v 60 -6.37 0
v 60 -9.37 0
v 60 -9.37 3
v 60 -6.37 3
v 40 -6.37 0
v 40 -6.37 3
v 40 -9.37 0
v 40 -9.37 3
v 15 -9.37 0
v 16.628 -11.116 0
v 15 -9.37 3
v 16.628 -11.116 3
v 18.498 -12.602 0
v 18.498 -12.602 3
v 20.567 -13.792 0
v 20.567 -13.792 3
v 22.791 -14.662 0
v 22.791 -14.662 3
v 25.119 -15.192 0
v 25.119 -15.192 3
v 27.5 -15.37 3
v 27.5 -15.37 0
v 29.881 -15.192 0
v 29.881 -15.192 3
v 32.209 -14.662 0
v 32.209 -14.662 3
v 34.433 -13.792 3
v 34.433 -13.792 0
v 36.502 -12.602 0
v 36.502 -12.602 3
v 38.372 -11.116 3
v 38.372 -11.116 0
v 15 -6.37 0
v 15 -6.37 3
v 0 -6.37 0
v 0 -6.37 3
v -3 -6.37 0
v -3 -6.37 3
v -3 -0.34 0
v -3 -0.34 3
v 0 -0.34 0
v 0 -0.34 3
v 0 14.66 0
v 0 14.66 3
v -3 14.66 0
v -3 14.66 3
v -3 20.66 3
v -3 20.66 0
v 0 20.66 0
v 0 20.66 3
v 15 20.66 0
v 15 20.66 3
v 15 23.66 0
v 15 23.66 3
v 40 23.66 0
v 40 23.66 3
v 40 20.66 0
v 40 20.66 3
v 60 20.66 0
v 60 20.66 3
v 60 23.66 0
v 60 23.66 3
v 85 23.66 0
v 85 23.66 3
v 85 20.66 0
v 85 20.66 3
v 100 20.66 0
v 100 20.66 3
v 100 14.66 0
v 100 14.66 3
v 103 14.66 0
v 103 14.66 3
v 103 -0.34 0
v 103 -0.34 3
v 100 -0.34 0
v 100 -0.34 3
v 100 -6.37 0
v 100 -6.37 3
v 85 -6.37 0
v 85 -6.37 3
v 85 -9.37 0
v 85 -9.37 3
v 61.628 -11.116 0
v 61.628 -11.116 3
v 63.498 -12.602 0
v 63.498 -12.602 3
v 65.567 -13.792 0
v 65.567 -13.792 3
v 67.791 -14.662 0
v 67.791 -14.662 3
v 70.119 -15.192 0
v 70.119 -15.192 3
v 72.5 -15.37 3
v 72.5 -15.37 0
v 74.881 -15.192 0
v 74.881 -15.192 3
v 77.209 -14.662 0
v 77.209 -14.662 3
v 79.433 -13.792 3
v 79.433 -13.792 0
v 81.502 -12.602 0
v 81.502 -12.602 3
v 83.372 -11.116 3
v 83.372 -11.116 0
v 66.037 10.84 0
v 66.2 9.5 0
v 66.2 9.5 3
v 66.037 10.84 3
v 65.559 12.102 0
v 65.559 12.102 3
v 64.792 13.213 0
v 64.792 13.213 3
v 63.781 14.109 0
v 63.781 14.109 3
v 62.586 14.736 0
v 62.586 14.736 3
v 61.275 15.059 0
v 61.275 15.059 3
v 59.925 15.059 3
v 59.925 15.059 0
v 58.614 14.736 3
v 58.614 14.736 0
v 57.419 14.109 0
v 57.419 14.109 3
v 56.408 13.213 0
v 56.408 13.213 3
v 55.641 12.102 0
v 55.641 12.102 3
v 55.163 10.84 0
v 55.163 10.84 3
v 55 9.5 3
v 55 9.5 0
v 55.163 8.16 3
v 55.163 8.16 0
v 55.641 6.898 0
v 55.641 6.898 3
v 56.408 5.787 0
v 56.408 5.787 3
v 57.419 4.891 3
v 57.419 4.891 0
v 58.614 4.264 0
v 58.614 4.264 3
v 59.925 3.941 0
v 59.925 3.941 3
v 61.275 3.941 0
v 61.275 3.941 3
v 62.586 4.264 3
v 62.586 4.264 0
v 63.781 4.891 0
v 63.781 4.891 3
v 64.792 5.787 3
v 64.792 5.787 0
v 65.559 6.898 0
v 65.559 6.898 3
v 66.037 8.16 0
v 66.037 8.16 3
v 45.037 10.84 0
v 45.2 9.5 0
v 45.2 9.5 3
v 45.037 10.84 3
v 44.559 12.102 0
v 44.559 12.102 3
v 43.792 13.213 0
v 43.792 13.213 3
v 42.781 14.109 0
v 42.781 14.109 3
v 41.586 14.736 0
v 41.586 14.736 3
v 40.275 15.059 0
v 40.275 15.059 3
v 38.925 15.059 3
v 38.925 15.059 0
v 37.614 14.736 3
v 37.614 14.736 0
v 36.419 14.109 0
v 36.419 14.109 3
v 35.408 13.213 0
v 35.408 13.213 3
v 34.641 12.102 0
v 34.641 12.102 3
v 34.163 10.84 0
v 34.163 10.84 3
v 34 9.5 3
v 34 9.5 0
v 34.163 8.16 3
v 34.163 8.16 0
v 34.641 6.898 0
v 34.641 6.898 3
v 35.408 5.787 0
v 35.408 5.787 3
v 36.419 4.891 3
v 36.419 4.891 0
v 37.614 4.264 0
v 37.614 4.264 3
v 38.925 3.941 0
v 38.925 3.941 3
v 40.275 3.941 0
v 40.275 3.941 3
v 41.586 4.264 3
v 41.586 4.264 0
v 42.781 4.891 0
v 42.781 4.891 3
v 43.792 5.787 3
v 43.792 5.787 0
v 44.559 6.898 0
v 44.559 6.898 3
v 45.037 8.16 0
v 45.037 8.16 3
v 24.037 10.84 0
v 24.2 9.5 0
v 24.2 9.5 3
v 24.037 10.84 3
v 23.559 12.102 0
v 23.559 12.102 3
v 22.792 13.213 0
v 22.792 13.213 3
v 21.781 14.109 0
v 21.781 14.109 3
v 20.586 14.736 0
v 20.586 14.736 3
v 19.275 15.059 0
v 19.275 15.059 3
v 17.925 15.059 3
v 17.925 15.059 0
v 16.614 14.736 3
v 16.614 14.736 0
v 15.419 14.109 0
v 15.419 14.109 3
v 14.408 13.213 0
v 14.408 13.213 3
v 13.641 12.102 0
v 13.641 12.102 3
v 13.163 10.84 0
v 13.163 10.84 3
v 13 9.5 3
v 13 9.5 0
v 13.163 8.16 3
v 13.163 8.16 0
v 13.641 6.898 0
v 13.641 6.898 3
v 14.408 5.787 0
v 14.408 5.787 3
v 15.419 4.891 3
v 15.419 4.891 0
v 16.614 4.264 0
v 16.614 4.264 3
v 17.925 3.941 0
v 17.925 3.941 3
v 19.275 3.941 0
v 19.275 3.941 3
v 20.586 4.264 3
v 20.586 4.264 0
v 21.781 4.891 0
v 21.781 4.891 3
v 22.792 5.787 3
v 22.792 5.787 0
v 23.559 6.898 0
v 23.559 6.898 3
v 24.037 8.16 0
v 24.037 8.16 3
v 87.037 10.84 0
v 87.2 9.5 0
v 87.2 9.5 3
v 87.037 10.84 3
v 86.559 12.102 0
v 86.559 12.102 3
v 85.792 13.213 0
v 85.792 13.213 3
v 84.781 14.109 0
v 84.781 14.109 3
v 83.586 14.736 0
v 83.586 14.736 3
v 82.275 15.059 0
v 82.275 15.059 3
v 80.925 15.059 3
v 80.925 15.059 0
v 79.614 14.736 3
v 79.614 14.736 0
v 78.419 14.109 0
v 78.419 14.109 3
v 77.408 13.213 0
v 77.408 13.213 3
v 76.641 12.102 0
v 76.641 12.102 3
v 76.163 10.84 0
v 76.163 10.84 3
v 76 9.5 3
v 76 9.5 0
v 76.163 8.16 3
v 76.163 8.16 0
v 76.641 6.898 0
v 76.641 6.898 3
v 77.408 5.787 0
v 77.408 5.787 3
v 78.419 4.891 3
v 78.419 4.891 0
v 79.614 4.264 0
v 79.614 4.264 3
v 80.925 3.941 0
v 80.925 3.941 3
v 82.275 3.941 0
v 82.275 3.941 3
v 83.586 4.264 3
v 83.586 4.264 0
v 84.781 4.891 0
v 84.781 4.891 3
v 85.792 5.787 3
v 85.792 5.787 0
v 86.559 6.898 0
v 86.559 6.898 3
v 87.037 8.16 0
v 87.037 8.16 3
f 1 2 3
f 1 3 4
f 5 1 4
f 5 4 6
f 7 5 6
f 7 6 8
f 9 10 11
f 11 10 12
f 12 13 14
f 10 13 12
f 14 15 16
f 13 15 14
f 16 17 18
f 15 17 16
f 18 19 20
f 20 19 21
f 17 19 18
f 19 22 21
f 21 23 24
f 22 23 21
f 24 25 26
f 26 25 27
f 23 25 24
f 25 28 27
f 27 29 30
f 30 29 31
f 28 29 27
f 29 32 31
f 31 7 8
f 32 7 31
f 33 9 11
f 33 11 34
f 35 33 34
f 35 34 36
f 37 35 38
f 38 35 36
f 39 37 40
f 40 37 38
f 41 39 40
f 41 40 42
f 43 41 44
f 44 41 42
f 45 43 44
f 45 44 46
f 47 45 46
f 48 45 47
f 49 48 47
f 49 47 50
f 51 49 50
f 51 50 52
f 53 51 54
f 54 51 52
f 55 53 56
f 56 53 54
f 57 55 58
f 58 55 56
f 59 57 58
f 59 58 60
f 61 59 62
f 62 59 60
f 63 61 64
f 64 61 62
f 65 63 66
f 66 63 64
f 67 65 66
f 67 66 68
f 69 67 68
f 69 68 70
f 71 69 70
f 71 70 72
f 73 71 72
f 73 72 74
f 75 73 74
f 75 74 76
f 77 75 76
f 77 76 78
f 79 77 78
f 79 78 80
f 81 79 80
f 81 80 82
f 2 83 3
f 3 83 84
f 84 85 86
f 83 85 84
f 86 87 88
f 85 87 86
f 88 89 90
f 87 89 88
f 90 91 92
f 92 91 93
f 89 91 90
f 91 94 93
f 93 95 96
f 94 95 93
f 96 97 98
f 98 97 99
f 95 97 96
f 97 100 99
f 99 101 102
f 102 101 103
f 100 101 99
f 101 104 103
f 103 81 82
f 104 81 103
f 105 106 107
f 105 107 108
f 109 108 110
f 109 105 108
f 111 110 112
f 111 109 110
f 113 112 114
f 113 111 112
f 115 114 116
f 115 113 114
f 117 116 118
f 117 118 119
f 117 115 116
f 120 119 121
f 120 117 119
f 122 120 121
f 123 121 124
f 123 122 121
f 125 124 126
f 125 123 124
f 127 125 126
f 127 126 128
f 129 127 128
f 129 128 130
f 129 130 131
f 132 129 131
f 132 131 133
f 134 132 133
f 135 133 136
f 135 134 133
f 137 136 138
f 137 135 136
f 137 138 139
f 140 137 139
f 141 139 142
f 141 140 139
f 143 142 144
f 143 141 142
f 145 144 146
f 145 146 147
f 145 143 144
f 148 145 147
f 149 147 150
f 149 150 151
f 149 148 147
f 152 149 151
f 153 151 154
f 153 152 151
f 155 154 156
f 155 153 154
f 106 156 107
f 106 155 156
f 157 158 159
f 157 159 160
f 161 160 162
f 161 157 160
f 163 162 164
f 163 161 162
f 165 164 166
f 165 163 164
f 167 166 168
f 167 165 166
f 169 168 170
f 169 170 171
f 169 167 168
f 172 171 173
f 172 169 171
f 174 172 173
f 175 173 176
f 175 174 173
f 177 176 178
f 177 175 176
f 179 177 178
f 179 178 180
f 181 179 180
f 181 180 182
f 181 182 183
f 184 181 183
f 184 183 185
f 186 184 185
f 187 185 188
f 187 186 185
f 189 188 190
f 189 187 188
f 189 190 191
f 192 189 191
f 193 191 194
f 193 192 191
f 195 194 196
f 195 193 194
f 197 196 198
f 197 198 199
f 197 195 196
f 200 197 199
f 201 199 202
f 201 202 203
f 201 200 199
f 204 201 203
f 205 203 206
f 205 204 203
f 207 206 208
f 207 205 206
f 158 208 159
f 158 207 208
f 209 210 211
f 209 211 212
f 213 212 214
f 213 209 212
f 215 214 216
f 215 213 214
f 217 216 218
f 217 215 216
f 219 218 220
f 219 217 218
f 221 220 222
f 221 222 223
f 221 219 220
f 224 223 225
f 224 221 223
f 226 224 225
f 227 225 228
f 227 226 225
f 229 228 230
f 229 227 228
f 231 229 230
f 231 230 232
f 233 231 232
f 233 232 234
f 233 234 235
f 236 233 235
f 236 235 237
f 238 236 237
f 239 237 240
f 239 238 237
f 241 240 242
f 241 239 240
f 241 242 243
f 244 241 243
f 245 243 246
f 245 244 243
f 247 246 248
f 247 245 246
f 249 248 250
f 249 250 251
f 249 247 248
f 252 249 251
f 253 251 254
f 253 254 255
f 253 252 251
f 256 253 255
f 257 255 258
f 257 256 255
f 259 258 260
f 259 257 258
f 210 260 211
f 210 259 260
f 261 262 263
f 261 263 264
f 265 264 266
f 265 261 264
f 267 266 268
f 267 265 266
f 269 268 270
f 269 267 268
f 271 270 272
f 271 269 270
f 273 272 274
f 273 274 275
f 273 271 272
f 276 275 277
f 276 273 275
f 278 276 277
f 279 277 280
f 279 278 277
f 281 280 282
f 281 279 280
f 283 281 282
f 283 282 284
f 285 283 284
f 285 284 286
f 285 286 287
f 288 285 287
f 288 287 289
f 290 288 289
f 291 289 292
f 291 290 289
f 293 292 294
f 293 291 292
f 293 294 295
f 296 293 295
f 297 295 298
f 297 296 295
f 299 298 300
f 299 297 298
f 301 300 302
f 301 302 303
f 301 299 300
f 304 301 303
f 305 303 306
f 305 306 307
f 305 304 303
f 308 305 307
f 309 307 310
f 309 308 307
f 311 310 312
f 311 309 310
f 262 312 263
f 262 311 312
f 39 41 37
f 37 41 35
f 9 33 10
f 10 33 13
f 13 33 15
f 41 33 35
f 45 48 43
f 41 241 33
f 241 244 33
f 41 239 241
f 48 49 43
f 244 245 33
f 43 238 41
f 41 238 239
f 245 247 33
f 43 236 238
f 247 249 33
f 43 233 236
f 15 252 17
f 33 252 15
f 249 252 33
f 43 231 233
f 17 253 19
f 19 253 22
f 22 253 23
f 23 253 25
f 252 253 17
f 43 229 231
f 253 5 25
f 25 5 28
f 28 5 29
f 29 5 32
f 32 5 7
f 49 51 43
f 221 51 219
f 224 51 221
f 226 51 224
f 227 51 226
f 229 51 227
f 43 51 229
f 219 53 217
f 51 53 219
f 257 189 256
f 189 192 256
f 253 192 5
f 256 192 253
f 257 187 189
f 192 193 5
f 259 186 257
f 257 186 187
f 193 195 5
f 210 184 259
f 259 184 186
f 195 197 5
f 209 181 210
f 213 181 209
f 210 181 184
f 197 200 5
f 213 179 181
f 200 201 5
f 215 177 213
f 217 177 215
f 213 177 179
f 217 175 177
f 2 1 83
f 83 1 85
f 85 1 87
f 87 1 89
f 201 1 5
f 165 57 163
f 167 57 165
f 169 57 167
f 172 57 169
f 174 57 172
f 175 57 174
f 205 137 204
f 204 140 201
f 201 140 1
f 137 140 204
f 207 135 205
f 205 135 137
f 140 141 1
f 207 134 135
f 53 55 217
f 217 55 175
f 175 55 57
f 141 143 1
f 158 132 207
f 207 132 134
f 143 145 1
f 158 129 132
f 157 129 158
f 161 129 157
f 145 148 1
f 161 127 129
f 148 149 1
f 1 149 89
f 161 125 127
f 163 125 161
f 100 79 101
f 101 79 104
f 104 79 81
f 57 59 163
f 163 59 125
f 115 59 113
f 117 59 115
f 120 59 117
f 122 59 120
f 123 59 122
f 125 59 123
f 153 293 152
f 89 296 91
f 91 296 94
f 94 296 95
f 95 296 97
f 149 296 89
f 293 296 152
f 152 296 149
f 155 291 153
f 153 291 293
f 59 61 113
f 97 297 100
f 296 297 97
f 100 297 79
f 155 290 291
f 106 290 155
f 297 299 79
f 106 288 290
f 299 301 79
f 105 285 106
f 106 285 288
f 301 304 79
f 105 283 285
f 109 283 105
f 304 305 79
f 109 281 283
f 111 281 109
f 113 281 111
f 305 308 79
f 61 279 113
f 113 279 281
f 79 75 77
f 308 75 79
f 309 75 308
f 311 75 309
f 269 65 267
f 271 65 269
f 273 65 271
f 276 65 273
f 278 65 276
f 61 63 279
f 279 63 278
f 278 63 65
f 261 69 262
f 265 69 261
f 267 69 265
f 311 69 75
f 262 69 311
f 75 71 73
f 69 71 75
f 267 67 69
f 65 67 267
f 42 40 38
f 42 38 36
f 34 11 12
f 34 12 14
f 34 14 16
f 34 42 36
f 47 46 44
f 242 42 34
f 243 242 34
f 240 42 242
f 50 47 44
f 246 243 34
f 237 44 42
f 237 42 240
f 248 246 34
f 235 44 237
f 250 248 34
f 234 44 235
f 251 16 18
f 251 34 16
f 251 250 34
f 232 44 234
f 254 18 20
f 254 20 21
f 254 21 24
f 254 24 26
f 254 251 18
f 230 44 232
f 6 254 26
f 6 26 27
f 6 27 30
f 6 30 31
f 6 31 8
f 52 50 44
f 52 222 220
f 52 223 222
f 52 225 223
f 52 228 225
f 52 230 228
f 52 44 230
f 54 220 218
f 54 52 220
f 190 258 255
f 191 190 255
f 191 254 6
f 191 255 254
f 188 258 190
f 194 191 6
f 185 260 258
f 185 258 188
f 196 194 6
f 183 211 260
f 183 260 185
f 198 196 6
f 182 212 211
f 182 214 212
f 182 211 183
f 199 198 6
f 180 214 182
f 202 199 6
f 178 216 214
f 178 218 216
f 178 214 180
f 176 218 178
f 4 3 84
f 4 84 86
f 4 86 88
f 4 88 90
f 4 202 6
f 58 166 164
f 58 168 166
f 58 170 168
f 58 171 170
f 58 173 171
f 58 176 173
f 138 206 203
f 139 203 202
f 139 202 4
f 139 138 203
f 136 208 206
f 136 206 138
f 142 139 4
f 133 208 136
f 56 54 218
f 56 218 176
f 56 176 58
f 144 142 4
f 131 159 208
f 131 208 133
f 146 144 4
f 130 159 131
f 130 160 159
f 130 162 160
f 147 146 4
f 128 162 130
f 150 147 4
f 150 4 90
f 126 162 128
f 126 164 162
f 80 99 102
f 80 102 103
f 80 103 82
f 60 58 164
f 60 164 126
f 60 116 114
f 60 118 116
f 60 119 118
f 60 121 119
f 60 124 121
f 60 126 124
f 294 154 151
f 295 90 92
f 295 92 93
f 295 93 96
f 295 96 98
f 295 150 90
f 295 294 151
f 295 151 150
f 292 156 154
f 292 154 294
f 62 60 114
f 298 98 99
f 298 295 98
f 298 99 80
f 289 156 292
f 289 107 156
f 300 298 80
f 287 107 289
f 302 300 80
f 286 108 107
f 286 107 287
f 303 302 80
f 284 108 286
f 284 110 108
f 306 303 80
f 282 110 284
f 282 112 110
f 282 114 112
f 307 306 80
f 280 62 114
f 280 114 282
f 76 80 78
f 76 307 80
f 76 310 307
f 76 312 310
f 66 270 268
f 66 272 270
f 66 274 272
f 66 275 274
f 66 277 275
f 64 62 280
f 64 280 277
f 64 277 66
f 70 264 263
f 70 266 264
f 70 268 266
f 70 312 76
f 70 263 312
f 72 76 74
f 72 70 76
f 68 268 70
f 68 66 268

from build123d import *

# Parameters (mm, degrees)
SKETCH_R      = 5.6
EXTRUDE_DEPTH = 3


with BuildPart() as part:
    # Sketch → Extrude (new body)
    with BuildSketch(Plane.XY):
        with BuildLine():
            Line((40, -6.37), (40, -9.37))
            ThreePointArc((15, -9.37), (27.5, -15.37), (40, -9.37))
            Line((15, -9.37), (15, -6.37))
            Line((15, -6.37), (0, -6.37))
            Line((-3, -6.37), (0, -6.37))
            Line((-3, -0.34), (-3, -6.37))
            Line((-3, -0.34), (0, -0.34))
            Line((0, 14.66), (0, -0.34))
            Line((0, 14.66), (-3, 14.66))
            Line((-3, 14.66), (-3, 20.66))
            Line((-3, 20.66), (0, 20.66))
            Line((0, 20.66), (15, 20.66))
            Line((15, 23.66), (15, 20.66))
            Line((40, 23.66), (15, 23.66))
            Line((40, 20.66), (40, 23.66))
            Line((40, 20.66), (60, 20.66))
            Line((60, 23.66), (60, 20.66))
            Line((85, 23.66), (60, 23.66))
            Line((85, 20.66), (85, 23.66))
            Line((85, 20.66), (100, 20.66))
            Line((100, 20.66), (100, 14.66))
            Line((100, 14.66), (103, 14.66))
            Line((103, 14.66), (103, -0.34))
            Line((103, -0.34), (100, -0.34))
            Line((100, -0.34), (100, -6.37))
            Line((100, -6.37), (85, -6.37))
            Line((85, -6.37), (85, -9.37))
            ThreePointArc((60, -9.37), (72.5, -15.37), (85, -9.37))
            Line((60, -9.37), (60, -6.37))
            Line((60, -6.37), (40, -6.37))
        make_face()
        with Locations((18.6, 9.5)):
            Circle(SKETCH_R, mode=Mode.SUBTRACT)
        with Locations((39.6, 9.5)):
            Circle(SKETCH_R, mode=Mode.SUBTRACT)
        with Locations((60.6, 9.5)):
            Circle(SKETCH_R, mode=Mode.SUBTRACT)
        with Locations((81.6, 9.5)):
            Circle(SKETCH_R, mode=Mode.SUBTRACT)
    extrude(amount=EXTRUDE_DEPTH)


solid = part.part
